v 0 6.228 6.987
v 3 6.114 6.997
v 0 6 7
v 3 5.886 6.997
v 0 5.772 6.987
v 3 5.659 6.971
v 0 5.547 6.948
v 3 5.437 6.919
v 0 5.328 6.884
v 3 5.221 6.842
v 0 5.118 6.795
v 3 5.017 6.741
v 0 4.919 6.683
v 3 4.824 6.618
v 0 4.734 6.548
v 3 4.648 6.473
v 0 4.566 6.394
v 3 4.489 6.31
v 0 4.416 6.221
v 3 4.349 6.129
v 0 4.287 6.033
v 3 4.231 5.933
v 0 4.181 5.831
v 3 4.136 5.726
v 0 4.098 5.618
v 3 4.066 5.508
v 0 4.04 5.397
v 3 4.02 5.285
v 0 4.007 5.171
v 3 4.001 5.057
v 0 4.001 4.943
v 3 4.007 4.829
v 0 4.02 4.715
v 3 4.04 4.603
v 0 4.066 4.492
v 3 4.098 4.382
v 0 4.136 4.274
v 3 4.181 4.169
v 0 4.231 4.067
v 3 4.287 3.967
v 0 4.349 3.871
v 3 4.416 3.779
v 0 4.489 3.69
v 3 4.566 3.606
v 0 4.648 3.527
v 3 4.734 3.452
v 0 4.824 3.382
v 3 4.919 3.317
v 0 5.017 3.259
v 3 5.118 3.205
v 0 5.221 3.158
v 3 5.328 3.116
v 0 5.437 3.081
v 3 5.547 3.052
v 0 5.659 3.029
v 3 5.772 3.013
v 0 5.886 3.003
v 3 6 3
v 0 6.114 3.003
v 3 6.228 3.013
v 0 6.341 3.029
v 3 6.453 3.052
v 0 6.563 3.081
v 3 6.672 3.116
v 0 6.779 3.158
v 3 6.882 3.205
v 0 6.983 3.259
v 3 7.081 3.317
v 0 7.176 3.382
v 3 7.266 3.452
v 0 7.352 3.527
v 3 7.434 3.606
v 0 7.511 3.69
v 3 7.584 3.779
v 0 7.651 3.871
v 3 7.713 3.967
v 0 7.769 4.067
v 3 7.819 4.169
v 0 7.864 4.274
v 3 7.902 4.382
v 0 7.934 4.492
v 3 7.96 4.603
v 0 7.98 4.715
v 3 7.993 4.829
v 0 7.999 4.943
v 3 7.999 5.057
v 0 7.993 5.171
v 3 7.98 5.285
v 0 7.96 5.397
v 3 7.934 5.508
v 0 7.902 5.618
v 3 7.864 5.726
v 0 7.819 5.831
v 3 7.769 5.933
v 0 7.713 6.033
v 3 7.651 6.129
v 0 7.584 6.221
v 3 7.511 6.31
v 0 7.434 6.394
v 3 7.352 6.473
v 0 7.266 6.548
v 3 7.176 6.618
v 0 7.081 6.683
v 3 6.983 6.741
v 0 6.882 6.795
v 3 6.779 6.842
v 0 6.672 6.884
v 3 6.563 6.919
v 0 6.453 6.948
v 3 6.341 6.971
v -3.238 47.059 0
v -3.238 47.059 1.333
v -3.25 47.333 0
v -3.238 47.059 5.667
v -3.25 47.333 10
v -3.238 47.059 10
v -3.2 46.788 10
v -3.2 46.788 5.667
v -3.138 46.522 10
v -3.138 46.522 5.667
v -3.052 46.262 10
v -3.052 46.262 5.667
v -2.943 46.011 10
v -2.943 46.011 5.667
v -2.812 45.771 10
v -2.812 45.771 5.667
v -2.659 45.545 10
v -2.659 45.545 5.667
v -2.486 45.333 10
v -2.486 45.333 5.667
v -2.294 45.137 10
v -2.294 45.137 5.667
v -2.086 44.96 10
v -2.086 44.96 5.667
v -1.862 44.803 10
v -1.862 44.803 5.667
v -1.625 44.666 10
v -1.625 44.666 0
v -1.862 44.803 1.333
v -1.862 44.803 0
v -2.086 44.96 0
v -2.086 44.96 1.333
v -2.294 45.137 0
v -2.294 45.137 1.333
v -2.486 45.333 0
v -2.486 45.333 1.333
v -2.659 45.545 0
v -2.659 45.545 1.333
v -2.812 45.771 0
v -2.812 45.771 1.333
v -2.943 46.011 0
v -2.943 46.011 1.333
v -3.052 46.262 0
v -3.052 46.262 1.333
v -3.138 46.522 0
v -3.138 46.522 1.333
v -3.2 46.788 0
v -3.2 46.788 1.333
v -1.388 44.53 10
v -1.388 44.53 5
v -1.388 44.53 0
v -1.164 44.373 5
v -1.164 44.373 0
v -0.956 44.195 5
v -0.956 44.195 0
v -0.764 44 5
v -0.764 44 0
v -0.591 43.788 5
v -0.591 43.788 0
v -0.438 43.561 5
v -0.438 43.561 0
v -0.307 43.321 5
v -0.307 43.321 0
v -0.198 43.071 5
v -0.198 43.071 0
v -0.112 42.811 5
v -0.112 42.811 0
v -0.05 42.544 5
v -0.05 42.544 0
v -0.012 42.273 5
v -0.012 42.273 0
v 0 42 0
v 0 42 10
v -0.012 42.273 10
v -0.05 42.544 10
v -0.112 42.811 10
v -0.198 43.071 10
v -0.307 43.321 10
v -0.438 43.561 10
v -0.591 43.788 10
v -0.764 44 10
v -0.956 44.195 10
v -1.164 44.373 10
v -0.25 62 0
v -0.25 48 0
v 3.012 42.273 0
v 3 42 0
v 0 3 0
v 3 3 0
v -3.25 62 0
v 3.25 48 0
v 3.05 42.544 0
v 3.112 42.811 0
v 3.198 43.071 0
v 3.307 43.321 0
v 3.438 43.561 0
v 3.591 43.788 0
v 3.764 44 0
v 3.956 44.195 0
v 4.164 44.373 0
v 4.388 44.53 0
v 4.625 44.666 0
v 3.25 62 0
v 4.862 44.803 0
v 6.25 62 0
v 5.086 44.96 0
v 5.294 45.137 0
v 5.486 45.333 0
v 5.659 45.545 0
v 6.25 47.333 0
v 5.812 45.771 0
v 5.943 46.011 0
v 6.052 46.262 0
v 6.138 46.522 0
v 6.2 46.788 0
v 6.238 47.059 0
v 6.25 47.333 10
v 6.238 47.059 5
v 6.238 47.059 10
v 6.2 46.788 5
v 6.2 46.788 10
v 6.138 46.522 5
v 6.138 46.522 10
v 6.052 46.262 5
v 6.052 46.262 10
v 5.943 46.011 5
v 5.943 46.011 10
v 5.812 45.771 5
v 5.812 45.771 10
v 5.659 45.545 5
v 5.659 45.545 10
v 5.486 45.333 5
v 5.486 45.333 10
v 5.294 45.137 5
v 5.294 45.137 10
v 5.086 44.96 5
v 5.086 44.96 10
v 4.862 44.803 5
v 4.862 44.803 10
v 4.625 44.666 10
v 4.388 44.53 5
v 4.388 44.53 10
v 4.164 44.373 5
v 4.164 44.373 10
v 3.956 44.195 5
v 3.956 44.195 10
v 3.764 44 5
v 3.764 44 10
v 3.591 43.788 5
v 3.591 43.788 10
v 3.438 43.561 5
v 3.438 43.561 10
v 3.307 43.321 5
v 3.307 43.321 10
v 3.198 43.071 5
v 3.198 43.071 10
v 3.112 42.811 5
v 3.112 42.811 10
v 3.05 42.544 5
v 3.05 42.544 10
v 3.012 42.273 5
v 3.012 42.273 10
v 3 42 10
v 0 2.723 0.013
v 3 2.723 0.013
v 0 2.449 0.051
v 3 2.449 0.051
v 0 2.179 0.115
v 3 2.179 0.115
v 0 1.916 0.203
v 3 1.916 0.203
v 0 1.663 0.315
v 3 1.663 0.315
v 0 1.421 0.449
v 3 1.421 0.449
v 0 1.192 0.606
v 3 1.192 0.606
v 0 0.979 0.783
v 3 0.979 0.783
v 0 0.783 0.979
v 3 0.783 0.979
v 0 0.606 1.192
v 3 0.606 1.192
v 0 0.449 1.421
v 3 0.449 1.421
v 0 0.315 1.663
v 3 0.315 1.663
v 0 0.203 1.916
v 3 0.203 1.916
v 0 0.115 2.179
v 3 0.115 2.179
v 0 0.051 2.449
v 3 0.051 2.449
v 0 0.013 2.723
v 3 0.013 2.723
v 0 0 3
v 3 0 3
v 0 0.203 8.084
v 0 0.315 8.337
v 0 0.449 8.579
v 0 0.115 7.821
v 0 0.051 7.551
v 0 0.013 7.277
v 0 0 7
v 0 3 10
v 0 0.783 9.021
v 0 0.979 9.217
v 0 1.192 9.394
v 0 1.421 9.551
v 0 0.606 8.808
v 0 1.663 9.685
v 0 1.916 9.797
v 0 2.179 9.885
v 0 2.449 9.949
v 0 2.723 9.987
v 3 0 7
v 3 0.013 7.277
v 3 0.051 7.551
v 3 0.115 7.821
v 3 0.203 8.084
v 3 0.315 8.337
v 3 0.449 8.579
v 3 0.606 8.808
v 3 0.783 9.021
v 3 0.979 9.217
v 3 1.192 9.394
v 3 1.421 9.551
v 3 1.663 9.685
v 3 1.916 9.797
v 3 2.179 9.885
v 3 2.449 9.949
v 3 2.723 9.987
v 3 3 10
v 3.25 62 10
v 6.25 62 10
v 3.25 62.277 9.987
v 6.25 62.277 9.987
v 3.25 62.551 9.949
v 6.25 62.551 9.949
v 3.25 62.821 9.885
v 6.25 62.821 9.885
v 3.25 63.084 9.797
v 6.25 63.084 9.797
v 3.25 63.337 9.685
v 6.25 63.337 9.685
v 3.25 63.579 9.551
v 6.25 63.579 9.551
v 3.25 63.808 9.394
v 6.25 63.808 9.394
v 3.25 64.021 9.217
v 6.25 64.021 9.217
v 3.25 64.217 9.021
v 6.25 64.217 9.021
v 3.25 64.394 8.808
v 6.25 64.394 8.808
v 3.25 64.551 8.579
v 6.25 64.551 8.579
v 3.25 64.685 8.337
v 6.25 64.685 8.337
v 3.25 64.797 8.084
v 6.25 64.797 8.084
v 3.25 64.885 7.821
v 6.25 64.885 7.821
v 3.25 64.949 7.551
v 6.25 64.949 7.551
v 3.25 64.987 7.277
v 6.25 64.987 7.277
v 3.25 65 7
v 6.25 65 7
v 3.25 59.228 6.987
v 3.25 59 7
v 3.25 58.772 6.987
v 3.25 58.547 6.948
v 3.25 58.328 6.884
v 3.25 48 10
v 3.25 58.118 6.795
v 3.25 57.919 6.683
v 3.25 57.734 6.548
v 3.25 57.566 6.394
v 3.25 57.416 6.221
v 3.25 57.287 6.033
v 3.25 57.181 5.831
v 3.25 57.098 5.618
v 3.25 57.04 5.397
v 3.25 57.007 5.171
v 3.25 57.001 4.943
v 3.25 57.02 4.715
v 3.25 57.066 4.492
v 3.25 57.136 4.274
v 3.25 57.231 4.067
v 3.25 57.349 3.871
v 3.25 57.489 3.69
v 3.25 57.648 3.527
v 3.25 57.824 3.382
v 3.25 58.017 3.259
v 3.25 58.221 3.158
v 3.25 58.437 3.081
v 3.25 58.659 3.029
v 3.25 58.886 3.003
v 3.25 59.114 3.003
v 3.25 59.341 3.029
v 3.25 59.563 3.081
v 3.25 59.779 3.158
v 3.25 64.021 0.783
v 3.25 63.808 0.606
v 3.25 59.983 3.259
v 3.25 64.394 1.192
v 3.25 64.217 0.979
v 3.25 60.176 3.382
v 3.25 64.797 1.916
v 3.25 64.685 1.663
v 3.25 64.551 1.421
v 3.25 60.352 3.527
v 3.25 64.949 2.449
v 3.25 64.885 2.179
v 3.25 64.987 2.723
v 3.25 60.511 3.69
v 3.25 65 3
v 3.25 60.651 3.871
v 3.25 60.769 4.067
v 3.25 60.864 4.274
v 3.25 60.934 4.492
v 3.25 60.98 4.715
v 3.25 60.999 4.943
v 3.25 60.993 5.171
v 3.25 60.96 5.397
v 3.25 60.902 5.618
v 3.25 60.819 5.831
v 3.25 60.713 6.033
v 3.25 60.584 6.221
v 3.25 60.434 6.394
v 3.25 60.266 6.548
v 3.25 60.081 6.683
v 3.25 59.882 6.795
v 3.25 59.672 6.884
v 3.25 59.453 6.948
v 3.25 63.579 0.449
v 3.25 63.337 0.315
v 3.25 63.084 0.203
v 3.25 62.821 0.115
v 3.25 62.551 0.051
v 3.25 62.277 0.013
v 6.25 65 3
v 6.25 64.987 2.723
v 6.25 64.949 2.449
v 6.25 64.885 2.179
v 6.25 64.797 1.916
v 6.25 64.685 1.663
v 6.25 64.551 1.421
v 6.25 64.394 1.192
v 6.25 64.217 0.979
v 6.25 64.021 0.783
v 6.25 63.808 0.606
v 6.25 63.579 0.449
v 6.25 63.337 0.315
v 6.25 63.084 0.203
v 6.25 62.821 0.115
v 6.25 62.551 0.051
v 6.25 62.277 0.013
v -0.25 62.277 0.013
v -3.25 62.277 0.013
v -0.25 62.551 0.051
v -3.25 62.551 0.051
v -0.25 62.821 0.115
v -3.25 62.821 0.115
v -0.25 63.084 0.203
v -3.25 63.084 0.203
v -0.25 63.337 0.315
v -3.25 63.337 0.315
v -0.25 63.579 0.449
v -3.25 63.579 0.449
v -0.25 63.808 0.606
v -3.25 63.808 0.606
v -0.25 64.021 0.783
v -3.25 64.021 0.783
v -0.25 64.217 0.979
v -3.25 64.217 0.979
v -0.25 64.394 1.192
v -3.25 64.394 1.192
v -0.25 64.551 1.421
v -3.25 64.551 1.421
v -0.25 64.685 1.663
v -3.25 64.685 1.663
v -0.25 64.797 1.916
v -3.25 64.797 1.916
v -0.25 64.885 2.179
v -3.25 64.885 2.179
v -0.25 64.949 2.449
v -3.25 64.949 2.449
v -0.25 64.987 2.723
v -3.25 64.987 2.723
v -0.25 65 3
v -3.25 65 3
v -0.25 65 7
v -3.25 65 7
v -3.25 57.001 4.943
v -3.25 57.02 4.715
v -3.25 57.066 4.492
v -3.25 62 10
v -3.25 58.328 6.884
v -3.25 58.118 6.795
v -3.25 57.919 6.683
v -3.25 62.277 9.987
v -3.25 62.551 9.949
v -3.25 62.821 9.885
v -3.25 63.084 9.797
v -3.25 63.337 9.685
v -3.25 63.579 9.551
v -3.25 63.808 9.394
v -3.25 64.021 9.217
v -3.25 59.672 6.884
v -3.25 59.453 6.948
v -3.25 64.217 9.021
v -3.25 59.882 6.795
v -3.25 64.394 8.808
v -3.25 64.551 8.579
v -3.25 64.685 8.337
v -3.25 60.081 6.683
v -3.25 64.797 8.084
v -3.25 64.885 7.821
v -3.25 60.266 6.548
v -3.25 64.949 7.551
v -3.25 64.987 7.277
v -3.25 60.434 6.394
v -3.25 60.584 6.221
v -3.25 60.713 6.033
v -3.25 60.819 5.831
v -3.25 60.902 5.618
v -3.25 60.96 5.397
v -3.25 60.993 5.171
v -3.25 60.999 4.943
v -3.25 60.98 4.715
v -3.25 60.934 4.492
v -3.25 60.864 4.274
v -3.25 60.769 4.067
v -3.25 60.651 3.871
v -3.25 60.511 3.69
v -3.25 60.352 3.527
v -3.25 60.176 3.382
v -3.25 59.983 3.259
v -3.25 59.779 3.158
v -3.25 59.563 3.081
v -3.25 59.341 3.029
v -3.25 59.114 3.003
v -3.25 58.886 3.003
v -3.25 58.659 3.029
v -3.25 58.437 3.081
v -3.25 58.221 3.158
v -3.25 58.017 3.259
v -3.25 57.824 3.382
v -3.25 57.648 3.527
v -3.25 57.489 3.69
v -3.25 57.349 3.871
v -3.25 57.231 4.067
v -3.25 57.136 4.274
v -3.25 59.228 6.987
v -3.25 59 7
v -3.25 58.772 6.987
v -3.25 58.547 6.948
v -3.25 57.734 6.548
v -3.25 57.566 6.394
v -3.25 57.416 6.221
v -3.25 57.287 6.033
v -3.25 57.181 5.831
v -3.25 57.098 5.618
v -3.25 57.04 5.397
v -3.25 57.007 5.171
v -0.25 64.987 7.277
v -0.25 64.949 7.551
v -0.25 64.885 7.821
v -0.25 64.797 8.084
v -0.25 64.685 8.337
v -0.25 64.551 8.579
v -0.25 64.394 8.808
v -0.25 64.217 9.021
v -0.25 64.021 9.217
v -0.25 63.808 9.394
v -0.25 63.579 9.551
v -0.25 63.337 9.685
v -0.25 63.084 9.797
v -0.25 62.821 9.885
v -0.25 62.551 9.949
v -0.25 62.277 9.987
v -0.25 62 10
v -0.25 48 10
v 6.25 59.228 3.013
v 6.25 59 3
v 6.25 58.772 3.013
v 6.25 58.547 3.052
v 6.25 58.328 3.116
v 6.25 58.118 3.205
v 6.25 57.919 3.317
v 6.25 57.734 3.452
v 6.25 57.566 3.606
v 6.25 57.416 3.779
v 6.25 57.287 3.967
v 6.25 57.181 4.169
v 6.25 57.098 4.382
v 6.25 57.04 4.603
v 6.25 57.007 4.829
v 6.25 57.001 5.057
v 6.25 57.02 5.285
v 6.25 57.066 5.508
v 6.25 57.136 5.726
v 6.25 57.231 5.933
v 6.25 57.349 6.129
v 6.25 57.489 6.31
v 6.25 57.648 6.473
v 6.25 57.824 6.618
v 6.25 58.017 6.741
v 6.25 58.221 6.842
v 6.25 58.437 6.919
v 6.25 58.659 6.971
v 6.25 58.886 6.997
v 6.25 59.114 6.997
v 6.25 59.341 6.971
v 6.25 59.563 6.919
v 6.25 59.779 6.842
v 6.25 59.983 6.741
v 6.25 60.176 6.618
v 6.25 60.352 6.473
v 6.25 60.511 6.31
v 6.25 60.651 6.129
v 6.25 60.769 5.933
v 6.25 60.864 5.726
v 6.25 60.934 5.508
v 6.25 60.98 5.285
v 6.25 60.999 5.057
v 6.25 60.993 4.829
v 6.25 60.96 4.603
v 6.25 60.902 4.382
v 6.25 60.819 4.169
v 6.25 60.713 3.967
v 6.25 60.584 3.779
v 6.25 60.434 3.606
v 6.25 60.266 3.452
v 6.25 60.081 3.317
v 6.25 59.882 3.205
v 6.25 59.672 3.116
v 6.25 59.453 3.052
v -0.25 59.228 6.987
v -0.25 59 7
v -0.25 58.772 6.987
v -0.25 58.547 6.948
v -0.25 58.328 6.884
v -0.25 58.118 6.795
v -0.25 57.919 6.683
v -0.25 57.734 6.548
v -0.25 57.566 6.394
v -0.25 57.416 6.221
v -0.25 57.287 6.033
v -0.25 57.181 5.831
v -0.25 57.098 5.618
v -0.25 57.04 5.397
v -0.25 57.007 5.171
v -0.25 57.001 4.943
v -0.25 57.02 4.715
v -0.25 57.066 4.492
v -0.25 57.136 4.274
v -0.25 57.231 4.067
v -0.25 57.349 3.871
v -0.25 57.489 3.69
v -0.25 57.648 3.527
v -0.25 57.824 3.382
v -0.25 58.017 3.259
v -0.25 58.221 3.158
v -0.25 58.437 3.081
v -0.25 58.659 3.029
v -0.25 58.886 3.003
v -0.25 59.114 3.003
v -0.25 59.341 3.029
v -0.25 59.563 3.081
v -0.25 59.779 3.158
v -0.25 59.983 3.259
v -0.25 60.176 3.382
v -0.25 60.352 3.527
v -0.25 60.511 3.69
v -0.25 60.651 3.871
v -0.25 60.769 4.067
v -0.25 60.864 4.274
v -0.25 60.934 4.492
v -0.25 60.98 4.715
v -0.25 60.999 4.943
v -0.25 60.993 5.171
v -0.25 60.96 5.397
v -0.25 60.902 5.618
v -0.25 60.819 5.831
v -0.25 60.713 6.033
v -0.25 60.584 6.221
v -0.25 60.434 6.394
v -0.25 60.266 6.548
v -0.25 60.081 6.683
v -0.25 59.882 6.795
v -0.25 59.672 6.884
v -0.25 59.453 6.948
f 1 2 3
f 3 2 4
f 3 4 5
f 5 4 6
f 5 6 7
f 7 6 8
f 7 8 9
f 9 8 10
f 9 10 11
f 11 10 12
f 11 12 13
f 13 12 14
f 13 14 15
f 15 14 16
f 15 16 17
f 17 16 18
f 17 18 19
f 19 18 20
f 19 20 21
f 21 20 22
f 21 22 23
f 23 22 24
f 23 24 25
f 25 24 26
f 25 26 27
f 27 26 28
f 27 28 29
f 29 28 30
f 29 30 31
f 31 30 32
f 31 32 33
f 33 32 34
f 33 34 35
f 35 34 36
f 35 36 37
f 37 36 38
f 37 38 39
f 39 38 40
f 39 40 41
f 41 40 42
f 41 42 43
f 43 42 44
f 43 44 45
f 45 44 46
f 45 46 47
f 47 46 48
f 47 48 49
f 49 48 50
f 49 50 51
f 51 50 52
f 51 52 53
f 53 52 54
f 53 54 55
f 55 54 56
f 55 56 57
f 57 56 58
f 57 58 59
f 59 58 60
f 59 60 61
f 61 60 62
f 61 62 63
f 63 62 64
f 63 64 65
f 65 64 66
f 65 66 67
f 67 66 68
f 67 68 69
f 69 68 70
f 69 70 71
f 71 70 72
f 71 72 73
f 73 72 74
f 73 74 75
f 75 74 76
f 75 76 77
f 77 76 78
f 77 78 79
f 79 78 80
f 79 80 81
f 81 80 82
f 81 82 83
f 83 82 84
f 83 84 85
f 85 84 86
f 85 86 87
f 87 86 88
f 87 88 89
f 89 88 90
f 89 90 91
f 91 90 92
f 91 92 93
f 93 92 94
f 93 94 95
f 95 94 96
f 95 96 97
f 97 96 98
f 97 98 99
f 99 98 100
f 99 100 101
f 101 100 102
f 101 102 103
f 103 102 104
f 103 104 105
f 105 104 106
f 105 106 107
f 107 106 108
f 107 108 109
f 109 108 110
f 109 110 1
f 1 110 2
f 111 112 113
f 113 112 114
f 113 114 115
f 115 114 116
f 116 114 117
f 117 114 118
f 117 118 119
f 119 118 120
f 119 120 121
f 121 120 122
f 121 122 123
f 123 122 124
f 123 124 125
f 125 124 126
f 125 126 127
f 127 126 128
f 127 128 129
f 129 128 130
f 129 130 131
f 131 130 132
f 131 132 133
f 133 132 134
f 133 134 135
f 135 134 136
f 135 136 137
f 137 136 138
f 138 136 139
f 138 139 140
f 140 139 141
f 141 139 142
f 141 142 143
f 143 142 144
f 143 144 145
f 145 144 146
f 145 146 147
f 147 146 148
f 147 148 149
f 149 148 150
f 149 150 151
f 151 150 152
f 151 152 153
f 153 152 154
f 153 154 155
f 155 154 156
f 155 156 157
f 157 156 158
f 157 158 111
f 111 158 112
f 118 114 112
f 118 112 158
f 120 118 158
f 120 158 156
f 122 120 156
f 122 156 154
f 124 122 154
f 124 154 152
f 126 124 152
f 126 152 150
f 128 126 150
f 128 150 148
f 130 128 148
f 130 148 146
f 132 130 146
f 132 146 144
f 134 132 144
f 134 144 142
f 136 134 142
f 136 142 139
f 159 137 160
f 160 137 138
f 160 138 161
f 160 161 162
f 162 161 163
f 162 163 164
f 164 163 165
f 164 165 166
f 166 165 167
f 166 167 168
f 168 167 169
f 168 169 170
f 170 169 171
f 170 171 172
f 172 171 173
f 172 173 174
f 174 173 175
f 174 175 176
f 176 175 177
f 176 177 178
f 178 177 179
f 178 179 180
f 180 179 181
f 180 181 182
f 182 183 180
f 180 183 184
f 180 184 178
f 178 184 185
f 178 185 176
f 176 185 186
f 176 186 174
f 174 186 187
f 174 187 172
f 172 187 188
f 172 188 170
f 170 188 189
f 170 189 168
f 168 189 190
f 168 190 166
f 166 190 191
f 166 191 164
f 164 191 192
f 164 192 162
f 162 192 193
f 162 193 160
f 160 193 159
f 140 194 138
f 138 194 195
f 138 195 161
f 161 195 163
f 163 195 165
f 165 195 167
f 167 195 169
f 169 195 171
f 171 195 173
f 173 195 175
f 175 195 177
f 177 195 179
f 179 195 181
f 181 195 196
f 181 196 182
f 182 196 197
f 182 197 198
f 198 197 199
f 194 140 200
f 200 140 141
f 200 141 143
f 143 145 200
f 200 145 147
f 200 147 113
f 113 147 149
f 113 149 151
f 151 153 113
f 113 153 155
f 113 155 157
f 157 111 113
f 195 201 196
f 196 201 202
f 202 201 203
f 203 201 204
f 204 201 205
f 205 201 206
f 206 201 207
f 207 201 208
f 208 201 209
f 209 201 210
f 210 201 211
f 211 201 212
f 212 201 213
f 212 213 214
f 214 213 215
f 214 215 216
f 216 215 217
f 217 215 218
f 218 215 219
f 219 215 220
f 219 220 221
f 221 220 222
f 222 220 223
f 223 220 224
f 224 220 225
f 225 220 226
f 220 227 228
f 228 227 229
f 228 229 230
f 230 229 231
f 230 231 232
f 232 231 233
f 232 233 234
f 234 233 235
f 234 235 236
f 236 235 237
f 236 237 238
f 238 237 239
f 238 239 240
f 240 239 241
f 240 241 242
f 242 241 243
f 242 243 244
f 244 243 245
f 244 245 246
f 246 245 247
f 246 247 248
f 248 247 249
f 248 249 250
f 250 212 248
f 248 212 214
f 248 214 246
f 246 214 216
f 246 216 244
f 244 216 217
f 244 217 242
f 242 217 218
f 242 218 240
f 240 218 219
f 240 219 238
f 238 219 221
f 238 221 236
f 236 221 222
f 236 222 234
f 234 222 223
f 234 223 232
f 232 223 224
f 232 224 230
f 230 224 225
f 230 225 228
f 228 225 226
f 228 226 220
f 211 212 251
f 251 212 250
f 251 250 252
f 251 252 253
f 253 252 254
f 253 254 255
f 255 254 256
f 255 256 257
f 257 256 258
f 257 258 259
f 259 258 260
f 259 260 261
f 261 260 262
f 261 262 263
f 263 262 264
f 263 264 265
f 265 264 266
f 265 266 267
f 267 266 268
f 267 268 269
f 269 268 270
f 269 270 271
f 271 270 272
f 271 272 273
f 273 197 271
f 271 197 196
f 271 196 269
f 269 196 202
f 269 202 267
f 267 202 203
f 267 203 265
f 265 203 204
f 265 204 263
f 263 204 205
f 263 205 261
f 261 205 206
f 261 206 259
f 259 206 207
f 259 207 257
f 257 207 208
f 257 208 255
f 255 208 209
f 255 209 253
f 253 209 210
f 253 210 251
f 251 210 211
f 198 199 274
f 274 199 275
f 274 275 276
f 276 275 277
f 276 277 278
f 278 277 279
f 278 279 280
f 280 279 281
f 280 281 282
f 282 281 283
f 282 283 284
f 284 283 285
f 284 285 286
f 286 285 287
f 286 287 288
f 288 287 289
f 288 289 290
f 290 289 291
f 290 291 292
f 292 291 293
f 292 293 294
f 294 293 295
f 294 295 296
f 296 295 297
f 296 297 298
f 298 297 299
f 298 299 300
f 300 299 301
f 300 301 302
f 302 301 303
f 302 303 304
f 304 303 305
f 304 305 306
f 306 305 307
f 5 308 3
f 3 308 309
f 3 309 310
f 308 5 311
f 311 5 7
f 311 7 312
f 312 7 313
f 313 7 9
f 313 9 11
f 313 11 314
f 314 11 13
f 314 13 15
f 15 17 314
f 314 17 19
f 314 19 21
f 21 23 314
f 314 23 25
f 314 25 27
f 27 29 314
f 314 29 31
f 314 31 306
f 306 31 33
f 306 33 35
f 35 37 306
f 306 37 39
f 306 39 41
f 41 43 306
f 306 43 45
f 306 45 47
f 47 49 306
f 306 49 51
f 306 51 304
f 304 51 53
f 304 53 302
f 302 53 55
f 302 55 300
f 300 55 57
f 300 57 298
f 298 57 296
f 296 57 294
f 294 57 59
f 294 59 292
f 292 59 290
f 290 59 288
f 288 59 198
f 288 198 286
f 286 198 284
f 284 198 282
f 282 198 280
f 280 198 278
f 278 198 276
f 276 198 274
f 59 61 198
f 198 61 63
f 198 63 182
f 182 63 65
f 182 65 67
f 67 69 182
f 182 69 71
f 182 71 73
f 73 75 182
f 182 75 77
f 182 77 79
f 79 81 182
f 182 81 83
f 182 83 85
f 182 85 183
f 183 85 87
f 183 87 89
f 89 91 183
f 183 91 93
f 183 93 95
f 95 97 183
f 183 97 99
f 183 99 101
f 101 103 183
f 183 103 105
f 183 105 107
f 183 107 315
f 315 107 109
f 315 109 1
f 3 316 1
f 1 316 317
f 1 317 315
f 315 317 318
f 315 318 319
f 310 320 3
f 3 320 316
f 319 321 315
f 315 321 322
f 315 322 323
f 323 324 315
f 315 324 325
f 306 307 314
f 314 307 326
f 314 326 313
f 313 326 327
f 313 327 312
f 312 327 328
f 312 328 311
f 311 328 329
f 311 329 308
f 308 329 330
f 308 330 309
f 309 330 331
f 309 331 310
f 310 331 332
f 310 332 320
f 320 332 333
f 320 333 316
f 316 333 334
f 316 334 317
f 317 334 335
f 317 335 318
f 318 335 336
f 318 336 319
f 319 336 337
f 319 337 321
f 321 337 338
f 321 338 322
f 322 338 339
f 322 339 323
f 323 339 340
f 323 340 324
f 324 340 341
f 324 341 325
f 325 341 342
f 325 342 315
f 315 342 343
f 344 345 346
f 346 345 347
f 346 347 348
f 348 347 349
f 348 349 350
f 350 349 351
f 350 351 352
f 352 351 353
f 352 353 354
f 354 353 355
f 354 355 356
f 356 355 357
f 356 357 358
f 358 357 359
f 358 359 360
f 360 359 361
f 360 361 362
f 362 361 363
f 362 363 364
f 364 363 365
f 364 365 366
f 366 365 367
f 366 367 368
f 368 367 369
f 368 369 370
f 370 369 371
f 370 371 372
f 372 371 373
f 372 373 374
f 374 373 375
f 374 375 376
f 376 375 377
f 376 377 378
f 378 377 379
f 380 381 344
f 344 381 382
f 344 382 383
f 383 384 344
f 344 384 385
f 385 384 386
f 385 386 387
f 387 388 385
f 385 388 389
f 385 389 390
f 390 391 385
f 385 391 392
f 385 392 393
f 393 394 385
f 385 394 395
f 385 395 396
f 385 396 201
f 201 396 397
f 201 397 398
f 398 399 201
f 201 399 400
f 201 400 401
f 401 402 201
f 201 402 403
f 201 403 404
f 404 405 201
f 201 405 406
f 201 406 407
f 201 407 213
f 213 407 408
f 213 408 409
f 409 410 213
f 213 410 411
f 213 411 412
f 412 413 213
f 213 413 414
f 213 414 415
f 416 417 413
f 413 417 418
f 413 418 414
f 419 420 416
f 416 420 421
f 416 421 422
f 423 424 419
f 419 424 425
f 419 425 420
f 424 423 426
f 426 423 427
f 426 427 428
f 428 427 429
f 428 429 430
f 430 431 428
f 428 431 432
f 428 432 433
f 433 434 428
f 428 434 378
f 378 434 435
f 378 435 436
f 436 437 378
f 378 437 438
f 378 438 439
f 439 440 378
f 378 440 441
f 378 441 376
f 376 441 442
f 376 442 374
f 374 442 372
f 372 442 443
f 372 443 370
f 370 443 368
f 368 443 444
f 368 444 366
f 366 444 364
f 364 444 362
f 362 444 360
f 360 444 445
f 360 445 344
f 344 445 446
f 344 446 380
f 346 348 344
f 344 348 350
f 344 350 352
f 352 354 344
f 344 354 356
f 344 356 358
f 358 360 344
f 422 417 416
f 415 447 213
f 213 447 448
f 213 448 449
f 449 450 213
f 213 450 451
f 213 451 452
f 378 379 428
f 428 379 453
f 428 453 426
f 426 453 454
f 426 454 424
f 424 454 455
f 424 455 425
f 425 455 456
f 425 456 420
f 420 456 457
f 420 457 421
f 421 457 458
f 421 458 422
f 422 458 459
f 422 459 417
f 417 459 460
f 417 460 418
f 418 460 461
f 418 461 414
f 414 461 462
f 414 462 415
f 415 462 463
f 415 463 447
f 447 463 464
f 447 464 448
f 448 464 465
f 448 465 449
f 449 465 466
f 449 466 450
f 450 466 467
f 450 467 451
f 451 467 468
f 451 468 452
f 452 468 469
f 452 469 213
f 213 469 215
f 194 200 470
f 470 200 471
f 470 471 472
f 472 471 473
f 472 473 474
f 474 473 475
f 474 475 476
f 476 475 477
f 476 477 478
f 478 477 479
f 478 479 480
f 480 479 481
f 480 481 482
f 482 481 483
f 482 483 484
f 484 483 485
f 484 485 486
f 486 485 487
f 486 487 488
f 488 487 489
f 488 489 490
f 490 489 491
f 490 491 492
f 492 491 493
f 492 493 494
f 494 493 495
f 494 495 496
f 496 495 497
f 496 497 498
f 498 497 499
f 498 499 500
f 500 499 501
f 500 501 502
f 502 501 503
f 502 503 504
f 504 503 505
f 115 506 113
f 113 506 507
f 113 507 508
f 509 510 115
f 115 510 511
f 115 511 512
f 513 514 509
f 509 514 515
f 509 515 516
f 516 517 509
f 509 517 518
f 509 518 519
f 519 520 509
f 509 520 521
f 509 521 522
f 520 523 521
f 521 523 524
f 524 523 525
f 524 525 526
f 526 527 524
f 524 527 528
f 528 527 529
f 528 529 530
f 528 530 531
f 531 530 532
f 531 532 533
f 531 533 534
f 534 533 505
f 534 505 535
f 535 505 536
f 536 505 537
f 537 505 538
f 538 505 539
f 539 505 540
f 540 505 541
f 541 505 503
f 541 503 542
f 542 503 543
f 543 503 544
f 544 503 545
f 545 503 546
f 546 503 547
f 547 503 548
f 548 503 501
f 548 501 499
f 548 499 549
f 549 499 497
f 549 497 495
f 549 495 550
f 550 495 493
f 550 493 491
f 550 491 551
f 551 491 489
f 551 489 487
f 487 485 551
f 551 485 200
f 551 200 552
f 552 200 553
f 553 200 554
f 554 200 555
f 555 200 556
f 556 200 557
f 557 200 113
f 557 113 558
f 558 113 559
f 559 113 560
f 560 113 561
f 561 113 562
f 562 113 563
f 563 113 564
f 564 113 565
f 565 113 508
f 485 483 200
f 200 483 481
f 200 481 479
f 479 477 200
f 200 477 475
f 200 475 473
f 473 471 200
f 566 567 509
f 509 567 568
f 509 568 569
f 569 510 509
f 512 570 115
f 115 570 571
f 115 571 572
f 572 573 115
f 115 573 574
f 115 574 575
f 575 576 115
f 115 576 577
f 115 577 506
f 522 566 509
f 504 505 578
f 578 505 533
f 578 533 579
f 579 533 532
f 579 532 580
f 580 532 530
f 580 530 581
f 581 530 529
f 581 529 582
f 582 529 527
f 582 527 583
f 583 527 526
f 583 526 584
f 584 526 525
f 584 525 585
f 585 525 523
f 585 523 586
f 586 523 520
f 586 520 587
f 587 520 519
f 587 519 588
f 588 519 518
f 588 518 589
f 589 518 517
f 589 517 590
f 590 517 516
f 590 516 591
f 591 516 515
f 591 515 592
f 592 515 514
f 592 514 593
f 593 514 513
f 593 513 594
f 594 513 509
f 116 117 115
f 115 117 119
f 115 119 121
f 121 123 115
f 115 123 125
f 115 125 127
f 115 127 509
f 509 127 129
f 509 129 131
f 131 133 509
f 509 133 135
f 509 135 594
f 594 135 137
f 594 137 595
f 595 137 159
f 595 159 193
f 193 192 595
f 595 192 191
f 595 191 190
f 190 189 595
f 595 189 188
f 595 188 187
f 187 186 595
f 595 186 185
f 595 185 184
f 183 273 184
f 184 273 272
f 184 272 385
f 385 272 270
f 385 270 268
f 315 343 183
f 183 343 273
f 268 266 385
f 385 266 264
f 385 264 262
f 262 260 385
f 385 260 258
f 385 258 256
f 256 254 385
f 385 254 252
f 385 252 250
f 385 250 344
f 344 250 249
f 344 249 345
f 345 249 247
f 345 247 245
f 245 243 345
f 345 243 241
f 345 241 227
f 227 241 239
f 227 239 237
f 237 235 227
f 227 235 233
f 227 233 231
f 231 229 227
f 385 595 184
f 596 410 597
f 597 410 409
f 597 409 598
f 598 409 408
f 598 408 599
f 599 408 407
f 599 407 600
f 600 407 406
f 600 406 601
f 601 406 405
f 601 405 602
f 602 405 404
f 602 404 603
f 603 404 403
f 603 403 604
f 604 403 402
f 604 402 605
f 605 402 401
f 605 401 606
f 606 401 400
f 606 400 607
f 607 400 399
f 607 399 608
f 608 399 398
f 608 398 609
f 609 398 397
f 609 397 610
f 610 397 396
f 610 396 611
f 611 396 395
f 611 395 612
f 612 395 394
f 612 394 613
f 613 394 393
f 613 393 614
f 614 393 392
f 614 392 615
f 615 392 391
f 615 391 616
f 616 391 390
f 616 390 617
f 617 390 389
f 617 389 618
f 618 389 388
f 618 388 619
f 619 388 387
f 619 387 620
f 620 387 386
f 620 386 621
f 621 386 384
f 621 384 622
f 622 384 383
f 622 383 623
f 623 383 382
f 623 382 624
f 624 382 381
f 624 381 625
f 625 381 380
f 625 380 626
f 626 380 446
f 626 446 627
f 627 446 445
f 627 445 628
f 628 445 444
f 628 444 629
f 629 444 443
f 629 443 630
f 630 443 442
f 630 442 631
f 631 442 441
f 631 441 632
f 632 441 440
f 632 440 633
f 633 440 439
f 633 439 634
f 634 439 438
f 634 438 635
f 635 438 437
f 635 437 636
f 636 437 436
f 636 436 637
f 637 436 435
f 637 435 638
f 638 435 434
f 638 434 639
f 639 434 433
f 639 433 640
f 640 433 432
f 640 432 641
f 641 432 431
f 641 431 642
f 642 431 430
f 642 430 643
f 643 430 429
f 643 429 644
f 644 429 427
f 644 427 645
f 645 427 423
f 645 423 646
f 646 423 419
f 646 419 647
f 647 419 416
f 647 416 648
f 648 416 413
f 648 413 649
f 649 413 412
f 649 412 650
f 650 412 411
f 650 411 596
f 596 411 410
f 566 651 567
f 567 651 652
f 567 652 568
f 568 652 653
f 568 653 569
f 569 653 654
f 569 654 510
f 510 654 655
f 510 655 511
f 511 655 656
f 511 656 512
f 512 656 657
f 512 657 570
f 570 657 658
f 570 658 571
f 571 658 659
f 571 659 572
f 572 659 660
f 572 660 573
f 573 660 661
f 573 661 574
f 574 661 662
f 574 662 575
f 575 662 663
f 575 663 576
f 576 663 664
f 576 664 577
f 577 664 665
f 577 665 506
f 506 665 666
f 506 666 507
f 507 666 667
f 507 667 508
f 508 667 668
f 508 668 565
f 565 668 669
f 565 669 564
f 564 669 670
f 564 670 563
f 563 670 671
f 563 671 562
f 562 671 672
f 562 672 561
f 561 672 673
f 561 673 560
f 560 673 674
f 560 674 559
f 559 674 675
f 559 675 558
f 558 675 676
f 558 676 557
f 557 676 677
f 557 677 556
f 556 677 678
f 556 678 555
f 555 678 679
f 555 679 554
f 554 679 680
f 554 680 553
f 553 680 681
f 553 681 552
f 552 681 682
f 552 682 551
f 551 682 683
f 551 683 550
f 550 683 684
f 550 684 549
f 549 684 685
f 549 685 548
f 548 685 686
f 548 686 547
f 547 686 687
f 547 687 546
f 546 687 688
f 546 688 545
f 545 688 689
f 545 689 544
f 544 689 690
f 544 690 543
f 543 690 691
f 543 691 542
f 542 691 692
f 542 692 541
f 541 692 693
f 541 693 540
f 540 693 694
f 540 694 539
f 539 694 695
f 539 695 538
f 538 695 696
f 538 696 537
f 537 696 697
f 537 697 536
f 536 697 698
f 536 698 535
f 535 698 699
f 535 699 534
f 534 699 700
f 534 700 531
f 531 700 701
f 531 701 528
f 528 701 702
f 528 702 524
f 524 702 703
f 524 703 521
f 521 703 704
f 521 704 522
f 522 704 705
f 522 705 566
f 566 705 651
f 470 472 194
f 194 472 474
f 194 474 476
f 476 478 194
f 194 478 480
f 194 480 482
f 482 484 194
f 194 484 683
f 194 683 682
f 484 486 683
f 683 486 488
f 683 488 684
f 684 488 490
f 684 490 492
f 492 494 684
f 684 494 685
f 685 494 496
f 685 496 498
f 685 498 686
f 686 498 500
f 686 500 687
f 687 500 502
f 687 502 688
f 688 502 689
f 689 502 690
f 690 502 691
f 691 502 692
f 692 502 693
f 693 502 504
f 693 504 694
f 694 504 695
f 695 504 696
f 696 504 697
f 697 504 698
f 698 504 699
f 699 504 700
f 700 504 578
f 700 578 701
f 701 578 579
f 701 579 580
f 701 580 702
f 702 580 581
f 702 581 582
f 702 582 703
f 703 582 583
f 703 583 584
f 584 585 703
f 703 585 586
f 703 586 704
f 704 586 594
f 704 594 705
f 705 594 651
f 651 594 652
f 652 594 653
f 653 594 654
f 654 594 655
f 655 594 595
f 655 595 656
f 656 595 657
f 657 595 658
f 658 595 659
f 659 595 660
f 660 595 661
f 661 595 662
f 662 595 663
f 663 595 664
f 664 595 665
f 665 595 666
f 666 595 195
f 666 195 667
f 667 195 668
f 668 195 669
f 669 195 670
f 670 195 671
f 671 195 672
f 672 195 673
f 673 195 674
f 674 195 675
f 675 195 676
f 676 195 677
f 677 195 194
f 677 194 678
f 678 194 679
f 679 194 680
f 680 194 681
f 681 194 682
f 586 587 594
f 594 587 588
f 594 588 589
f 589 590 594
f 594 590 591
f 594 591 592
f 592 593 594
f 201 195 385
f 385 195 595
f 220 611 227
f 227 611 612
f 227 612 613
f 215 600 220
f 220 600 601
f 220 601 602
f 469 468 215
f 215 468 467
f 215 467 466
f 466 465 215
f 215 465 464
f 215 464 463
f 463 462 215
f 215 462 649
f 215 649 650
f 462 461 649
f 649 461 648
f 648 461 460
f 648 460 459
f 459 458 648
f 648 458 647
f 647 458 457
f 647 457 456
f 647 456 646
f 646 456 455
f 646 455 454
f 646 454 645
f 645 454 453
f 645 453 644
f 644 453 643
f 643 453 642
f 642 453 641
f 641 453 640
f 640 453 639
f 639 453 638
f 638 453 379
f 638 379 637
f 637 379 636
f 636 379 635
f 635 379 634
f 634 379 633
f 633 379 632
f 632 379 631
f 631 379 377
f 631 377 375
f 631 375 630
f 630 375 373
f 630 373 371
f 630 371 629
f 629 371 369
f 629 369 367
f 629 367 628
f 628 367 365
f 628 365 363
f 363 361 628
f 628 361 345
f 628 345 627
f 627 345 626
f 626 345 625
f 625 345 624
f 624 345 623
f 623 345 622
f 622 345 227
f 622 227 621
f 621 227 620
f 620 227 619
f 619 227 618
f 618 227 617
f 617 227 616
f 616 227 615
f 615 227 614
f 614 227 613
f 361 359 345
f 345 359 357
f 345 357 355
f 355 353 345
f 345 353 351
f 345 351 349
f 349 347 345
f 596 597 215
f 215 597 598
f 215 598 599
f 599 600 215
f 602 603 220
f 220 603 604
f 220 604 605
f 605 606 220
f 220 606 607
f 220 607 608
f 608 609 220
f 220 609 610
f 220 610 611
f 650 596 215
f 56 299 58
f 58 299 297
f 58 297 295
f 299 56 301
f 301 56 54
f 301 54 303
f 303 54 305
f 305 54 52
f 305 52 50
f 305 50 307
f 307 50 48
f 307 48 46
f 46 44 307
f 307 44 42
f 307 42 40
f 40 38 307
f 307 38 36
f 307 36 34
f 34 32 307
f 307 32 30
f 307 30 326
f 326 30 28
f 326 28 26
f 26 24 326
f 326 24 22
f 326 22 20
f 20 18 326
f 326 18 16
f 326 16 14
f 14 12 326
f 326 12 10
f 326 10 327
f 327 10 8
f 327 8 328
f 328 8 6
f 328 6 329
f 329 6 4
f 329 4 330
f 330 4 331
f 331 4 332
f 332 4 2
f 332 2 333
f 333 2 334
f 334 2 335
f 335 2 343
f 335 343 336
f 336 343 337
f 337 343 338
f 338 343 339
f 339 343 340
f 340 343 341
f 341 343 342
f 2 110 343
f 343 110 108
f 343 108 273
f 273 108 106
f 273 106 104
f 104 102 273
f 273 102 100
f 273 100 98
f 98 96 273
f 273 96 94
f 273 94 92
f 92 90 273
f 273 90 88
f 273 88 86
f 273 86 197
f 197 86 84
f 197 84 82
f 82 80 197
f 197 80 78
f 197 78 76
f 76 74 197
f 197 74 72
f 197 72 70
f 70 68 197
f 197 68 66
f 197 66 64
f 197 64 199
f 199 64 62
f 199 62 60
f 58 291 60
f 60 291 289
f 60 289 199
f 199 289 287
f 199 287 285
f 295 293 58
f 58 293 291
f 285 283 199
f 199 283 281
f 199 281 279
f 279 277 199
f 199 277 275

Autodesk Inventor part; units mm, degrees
ref_plane "YZ Plane" through (0, 0, 0) normal (1, 0, 0) x (0, 1, 0)
ref_plane "XZ Plane" through (0, 0, 0) normal (0, 1, 0) x (-1, 0, 0)
ref_plane "XY Plane" through (0, 0, 0) normal (0, 0, 1) x (1, 0, 0)
sketch "Boceto1" plane through (0, 0, 0) normal (0, 0, 1) x (1, 0, 0)
  line L0 (0, 45) -> (-3.25, 45)
  line L1 (-3.25, 45) -> (-3.25, 65)
  line L2 (-3.25, 65) -> (-0.25, 65)
  line L3 (-0.25, 65) -> (-0.25, 48)
  line L4 (-0.25, 48) -> (3.25, 48)
  line L5 (3.25, 48) -> (3.25, 65)
  line L6 (3.25, 65) -> (6.25, 65)
  line L7 (6.25, 65) -> (6.25, 45)
  line L8 (6.25, 45) -> (3, 45)
  line L9 (3, 0) -> (0, 0)
  line L10 (1.5, 0) -> (1.5, 40) construction
  line L11 (0, 0) -> (0, 15)
  line L12 (0, 15) -> (0, 45)
  line L13 (3, 45) -> (3, 15)
  line L14 (3, 15) -> (3, 0)
  dimension "d1" = 3
  dimension "d4" = 3
  dimension "d5" = 3.5
  dimension "d6" = 9.5
  dimension "d8" = 4.75
  dimension "d9" = 20
  dimension "d20" = 3
  dimension "d27" = 65
extrude "Extrusión1" add sketch "Boceto1" along normal blind 10
sketch "Boceto2" plane through (6.25, 45, 0) normal (1, 0, 0) x (0, 0, -1)
  line L0 (0, 3) -> (-10, 3) construction
  line L1 (0, 0) -> (0, 20) construction
  line L2 (0, 20) -> (-10, 20) construction
  line L3 (-10, 0) -> (-10, 20) construction
  line L4 (0, 0) -> (-10, 0) construction
  line L5 (-10, 0) -> (-10, 20) construction
  line L6 (-10, 20) -> (-10, 3) construction
  line L7 (-10, 14) -> (0, 14) construction
  circle A0 centre (-5, 14) radius 2
  point P0 (0, -45)
  dimension "d15" = 4
  dimension "d16" = 6
extrude "Extrusión2" cut sketch "Boceto2" against normal through all
fillet "Empalme1" radius 3 10 edges at (-1.75, 65, 10) (-1.75, 65, 0) (4.75, 65, 0) (4.75, 65, 10) (0, 45, 5) (3, 45, 5) (6.25, 45, 5) (-3.25, 45, 5) (1.5, 0, 10) (1.5, 0, 0)
sketch "Boceto4" plane through (3, 3, 0) normal (1, 0, 0) x (0, 0, -1)
  arc A0 (-10, 0) -> (-7, -3) centre (-7, 0) ccw construction
  line L0 (0, 0) -> (0, 39) construction
  line L1 (-10, 39) -> (0, 39) construction
  line L2 (-10, 0) -> (-10, 39) construction
  line L3 (-3, -3) -> (-7, -3) projected
  line L4 (-3, -3) -> (-7, -3) construction
  line L5 (-5, -3) -> (-5, 39) construction
  line L6 (0, 39) -> (-10, 39) construction
  circle A1 centre (-5, 3) radius 2
  arc A2 (-3, -3) -> (0, 0) centre (-3, 0) ccw projected
  point P0 (0, -3)
  dimension "d28" = 4
  dimension "d29" = 6
extrude "Extrusión3" cut sketch "Boceto4" against normal blind 10
equation "\"d8\" = 0.5 * d6"
properties part number "brazo_servo"
